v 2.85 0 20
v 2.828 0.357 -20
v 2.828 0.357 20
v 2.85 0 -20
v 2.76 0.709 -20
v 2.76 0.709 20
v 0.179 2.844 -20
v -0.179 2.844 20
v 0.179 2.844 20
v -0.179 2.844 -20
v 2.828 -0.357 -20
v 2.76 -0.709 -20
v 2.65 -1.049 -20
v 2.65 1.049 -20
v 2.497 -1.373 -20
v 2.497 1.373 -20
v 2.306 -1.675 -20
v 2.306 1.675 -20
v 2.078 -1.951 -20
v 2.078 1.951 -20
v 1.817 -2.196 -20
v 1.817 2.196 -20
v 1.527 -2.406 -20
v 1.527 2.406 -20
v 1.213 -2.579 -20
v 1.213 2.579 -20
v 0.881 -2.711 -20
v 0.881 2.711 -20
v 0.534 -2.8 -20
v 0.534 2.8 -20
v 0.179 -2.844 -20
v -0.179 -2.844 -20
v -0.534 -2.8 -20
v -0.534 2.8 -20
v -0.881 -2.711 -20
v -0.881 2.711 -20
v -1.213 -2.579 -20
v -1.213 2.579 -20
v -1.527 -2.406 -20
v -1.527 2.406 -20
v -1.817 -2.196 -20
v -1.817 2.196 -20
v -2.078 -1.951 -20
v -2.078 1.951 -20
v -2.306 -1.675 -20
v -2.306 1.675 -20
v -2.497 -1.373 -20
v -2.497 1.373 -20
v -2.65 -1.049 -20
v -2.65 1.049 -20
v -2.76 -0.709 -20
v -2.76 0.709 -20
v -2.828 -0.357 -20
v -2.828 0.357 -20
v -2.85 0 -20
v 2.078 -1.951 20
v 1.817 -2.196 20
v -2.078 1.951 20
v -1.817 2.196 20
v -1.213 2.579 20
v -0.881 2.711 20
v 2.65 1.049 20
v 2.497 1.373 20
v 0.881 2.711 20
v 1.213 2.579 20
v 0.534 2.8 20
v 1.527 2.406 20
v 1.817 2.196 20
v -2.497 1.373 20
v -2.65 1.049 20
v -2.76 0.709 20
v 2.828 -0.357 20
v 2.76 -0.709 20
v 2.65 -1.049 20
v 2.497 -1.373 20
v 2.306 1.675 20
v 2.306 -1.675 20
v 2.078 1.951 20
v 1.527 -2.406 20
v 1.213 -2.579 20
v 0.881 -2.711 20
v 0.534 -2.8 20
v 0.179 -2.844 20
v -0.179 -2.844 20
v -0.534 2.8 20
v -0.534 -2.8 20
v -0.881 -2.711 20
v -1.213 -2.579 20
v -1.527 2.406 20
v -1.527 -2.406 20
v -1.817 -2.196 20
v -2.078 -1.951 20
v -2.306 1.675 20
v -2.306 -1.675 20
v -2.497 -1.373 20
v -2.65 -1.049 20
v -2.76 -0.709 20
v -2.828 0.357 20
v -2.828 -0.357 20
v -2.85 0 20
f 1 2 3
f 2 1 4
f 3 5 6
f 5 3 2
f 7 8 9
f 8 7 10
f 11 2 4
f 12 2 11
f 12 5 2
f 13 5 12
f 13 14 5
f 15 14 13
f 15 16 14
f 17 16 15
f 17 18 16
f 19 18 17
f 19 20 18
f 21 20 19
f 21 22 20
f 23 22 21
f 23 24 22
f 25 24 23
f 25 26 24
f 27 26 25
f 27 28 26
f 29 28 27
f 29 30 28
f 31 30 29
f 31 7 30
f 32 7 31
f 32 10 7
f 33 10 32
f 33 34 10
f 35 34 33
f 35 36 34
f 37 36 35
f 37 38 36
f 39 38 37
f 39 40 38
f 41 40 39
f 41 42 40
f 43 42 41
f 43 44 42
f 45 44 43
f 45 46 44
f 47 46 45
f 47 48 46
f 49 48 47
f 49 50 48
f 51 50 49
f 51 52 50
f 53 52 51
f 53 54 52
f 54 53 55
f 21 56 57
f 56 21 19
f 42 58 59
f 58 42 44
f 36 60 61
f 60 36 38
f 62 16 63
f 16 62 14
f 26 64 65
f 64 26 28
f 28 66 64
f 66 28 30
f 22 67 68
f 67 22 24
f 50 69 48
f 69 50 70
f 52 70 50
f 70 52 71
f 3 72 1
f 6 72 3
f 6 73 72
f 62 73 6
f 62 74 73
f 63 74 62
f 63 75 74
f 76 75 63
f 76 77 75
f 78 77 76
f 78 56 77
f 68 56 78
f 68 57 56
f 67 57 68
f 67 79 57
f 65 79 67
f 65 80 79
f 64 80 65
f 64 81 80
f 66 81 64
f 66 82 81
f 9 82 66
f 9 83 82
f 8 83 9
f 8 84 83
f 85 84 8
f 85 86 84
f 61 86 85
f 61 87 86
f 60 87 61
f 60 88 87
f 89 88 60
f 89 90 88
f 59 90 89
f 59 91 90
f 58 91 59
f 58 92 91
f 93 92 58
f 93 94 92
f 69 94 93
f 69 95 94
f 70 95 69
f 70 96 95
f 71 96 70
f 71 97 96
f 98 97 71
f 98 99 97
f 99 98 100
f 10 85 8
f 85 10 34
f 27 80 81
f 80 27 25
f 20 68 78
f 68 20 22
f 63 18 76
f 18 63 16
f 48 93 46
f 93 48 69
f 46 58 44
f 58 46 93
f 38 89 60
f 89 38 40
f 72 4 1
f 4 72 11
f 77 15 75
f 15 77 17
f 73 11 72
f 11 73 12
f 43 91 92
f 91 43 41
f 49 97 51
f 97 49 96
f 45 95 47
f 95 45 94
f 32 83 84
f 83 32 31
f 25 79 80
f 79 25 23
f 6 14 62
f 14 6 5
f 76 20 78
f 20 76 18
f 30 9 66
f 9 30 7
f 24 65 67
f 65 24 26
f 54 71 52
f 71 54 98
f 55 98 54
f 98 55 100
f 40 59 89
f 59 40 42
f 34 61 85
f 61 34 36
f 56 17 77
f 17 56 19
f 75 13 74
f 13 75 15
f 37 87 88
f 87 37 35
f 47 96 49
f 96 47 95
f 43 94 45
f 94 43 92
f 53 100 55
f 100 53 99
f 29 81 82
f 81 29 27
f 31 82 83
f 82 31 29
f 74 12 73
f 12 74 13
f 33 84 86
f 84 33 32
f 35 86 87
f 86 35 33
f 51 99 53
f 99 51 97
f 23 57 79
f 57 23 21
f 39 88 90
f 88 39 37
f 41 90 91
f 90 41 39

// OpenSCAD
$fn = 50;


difference() {
	union() {
		translate(v = [0, 0, -20.0000000000]) {
			cylinder(h = 40, r = 2.8500000000);
		}
	}
	union() {
		translate(v = [0, 0, -100.0000000000]) {
			cylinder(h = 200, r = 0);
		}
	}
}
